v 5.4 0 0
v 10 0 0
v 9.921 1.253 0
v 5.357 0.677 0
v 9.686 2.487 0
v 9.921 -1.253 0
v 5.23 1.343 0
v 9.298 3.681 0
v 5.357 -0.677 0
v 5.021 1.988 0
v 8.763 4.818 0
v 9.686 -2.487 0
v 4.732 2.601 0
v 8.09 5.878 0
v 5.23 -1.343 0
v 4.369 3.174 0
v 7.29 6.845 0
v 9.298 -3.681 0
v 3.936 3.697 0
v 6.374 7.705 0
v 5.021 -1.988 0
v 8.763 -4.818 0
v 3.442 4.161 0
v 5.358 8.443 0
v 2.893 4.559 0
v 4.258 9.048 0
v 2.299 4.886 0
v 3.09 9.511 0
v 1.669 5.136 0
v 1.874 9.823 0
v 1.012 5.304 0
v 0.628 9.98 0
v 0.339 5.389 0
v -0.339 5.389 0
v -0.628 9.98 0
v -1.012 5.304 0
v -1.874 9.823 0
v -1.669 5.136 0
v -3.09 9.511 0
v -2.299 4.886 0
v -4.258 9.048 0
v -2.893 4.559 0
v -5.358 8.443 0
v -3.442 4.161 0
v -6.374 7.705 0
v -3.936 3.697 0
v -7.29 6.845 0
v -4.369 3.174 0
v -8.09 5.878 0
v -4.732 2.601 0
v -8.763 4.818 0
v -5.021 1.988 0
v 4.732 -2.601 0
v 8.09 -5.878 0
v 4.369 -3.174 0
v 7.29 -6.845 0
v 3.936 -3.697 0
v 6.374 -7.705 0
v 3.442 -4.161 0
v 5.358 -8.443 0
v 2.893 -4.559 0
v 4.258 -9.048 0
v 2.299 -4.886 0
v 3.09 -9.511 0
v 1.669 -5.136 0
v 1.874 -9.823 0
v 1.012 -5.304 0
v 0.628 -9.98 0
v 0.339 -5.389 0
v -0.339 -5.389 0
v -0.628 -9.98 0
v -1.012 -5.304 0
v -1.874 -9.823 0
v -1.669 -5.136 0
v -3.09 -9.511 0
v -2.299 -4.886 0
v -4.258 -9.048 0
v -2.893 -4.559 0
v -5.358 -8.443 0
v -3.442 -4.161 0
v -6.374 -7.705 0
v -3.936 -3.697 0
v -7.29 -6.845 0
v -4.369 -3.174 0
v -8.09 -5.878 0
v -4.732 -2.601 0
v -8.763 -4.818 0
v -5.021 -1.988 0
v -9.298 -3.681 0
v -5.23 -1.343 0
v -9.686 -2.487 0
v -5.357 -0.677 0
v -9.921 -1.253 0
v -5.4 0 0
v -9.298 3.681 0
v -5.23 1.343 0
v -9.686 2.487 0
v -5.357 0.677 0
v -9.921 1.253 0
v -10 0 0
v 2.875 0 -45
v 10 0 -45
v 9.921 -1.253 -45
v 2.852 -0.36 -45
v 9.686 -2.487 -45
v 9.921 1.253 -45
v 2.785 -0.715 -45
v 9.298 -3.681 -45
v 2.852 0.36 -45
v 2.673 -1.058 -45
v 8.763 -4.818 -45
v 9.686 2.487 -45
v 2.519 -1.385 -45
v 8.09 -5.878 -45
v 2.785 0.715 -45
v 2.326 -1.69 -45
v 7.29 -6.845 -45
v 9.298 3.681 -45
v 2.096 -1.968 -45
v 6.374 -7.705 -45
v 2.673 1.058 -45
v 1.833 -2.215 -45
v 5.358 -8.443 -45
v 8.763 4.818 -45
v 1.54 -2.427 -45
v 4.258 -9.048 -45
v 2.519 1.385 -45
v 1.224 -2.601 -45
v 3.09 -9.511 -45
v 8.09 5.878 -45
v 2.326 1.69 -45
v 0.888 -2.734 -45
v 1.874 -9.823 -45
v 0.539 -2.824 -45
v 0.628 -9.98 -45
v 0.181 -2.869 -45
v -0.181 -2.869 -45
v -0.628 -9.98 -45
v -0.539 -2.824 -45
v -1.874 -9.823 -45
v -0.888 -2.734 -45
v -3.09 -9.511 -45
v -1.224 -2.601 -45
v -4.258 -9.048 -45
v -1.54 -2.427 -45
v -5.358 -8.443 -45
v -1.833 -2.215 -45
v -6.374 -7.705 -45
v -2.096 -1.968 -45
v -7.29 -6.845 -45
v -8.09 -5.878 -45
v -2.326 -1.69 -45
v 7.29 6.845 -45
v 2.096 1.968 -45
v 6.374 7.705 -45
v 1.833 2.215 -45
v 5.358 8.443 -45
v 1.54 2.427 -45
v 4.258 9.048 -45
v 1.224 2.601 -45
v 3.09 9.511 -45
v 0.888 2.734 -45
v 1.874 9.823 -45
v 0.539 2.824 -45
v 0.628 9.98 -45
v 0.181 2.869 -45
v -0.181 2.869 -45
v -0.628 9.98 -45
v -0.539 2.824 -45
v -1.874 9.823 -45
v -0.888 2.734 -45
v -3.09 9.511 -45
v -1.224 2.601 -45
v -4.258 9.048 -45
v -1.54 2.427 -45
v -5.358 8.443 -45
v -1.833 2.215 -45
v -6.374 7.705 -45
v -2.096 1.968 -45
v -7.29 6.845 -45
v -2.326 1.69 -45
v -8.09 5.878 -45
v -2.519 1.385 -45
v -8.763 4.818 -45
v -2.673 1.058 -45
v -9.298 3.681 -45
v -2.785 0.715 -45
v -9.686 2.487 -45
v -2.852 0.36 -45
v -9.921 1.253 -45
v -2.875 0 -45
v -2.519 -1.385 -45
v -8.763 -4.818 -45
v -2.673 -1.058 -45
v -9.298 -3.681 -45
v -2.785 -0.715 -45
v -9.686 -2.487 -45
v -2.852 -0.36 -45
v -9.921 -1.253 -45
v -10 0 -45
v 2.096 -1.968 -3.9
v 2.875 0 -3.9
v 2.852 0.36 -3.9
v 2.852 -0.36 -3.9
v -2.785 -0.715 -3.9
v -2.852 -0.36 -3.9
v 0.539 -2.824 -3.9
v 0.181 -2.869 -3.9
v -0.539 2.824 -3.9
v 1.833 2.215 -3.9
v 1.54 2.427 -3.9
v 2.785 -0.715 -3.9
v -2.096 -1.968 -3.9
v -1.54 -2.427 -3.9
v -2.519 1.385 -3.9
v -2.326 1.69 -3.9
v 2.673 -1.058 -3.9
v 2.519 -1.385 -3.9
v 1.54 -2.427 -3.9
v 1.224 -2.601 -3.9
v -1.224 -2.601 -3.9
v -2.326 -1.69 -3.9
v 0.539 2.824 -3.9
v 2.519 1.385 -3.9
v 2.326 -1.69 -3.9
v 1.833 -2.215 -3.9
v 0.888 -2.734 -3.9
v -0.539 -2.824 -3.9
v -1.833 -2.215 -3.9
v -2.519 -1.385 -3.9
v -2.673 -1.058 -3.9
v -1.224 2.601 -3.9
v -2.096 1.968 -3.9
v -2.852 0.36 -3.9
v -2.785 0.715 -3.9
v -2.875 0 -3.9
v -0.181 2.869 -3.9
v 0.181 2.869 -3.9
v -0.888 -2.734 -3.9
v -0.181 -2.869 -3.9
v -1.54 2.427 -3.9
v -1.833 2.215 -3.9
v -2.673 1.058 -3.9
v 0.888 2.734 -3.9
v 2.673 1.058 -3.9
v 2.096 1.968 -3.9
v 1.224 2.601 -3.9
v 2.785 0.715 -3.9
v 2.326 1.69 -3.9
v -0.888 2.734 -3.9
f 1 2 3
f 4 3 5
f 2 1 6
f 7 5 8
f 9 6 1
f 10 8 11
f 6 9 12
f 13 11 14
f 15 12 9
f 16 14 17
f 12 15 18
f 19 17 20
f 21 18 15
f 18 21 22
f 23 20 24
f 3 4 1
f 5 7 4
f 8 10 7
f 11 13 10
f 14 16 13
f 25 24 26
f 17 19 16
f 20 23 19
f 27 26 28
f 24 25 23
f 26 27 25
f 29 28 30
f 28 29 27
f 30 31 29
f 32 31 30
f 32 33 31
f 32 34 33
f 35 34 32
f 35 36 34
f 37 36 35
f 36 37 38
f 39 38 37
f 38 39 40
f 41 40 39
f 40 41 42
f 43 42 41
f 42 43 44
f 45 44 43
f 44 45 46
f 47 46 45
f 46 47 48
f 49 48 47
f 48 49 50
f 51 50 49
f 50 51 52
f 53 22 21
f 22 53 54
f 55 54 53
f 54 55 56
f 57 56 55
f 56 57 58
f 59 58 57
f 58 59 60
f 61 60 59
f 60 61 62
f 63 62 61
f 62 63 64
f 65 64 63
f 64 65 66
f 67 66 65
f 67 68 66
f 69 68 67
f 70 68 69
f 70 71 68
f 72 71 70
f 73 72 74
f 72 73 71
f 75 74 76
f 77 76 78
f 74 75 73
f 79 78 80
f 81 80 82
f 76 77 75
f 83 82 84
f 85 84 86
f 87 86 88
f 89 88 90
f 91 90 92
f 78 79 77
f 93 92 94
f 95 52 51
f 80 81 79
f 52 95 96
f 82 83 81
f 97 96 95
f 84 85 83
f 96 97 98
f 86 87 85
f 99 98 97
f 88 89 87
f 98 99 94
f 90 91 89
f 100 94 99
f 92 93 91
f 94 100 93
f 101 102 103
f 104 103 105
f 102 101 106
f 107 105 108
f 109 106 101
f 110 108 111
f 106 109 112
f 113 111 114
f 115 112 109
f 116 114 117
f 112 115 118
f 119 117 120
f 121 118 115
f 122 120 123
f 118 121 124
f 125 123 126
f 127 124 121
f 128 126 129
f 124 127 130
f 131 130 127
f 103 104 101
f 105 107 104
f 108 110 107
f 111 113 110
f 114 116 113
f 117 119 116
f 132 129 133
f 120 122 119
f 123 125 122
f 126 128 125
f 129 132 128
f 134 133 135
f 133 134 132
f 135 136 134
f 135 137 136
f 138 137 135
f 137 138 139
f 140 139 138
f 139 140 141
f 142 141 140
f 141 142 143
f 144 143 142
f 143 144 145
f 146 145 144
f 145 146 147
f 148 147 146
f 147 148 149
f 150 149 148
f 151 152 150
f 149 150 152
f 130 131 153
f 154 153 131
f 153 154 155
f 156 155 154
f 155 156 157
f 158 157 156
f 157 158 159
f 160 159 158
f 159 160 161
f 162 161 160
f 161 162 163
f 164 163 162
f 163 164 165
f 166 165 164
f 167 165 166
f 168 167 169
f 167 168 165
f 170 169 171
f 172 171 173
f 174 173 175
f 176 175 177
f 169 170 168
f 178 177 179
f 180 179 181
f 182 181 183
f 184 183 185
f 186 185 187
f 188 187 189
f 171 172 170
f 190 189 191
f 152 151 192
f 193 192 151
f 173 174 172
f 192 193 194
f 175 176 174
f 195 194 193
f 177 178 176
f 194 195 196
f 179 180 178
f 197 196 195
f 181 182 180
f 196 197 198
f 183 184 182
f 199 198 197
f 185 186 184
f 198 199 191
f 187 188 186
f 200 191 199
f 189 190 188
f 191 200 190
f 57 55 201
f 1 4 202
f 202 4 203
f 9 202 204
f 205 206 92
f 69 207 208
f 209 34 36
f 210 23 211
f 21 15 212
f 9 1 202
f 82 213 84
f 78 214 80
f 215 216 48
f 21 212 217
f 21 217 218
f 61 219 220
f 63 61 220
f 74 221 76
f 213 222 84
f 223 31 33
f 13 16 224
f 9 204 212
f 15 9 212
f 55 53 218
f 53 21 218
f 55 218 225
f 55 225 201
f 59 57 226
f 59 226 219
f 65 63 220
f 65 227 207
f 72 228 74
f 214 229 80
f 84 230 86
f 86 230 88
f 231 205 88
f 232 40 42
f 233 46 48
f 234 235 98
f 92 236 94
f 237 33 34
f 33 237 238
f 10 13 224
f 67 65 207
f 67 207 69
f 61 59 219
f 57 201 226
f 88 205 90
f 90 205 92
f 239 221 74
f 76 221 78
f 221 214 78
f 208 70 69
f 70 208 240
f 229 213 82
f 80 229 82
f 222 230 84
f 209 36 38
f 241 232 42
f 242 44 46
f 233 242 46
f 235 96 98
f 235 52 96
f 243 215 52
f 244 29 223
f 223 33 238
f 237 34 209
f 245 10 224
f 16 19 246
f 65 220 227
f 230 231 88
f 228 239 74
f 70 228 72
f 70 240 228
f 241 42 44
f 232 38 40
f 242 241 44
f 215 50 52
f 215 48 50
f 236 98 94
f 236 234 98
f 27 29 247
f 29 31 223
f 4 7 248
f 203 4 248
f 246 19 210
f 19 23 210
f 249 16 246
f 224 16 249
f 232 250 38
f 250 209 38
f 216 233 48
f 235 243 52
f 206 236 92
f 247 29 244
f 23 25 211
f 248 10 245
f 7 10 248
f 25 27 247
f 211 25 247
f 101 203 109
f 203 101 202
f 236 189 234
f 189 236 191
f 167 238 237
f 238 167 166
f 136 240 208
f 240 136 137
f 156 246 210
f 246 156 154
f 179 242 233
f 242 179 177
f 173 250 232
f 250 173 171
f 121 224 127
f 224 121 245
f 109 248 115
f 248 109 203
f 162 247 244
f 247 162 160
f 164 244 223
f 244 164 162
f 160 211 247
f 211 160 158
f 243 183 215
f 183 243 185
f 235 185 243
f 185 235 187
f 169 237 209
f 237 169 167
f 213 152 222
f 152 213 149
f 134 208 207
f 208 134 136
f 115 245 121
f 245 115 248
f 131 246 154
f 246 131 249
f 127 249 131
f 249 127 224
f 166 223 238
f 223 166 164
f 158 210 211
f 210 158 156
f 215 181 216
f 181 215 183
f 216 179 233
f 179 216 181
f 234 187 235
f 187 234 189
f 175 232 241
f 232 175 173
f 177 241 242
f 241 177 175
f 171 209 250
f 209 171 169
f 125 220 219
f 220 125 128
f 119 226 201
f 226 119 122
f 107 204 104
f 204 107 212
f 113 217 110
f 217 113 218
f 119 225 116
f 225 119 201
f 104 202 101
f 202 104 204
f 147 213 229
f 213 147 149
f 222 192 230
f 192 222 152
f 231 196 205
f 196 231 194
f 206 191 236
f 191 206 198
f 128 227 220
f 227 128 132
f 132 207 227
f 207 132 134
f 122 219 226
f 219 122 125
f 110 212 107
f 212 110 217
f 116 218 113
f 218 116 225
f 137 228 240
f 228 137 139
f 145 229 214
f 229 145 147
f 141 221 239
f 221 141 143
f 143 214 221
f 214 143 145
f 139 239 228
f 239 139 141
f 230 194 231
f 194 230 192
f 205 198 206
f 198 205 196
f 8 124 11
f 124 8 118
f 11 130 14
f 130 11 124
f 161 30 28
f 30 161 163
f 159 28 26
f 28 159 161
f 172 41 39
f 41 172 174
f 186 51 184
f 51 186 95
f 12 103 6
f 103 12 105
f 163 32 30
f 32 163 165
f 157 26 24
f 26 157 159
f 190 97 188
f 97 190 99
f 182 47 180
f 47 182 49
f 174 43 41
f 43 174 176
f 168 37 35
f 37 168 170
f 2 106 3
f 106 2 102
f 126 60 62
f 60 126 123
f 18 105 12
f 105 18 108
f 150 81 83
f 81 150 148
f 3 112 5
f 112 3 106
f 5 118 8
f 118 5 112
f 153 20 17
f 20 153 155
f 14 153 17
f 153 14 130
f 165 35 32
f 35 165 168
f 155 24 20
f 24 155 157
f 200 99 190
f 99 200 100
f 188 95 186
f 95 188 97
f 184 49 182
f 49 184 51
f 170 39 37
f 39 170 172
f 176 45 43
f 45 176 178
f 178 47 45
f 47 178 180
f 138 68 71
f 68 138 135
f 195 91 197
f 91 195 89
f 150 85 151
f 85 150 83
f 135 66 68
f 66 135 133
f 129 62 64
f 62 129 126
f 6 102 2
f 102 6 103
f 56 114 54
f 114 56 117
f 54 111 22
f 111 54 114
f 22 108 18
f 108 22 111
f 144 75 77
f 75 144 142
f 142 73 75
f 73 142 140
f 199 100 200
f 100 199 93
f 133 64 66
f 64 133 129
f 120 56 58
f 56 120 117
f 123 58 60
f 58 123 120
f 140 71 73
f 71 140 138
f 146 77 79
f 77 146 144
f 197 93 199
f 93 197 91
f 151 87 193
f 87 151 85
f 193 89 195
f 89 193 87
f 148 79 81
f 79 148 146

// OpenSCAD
$fn = 50;


difference() {
	union() {
		translate(v = [0, 0, -45.0000000000]) {
			cylinder(h = 45, r = 10.0000000000);
		}
		cylinder(h = 0, r = 19.0000000000);
	}
	union() {
		translate(v = [0, 0, 0]) {
			rotate(a = [0, 0, 0]) {
				difference() {
					union() {
						#translate(v = [0, 0, -45.0000000000]) {
							cylinder(h = 45, r = 2.6000000000);
						}
						#translate(v = [0, 0, -3.9000000000]) {
							cylinder(h = 3.9000000000, r = 10.0000000000, r1 = 2.8750000000, r2 = 5.4000000000);
						}
						#translate(v = [0, 0, -45.0000000000]) {
							cylinder(h = 45, r = 2.8750000000);
						}
						#translate(v = [0, 0, -45.0000000000]) {
							cylinder(h = 45, r = 2.6000000000);
						}
					}
					union();
				}
			}
		}
	}
}
